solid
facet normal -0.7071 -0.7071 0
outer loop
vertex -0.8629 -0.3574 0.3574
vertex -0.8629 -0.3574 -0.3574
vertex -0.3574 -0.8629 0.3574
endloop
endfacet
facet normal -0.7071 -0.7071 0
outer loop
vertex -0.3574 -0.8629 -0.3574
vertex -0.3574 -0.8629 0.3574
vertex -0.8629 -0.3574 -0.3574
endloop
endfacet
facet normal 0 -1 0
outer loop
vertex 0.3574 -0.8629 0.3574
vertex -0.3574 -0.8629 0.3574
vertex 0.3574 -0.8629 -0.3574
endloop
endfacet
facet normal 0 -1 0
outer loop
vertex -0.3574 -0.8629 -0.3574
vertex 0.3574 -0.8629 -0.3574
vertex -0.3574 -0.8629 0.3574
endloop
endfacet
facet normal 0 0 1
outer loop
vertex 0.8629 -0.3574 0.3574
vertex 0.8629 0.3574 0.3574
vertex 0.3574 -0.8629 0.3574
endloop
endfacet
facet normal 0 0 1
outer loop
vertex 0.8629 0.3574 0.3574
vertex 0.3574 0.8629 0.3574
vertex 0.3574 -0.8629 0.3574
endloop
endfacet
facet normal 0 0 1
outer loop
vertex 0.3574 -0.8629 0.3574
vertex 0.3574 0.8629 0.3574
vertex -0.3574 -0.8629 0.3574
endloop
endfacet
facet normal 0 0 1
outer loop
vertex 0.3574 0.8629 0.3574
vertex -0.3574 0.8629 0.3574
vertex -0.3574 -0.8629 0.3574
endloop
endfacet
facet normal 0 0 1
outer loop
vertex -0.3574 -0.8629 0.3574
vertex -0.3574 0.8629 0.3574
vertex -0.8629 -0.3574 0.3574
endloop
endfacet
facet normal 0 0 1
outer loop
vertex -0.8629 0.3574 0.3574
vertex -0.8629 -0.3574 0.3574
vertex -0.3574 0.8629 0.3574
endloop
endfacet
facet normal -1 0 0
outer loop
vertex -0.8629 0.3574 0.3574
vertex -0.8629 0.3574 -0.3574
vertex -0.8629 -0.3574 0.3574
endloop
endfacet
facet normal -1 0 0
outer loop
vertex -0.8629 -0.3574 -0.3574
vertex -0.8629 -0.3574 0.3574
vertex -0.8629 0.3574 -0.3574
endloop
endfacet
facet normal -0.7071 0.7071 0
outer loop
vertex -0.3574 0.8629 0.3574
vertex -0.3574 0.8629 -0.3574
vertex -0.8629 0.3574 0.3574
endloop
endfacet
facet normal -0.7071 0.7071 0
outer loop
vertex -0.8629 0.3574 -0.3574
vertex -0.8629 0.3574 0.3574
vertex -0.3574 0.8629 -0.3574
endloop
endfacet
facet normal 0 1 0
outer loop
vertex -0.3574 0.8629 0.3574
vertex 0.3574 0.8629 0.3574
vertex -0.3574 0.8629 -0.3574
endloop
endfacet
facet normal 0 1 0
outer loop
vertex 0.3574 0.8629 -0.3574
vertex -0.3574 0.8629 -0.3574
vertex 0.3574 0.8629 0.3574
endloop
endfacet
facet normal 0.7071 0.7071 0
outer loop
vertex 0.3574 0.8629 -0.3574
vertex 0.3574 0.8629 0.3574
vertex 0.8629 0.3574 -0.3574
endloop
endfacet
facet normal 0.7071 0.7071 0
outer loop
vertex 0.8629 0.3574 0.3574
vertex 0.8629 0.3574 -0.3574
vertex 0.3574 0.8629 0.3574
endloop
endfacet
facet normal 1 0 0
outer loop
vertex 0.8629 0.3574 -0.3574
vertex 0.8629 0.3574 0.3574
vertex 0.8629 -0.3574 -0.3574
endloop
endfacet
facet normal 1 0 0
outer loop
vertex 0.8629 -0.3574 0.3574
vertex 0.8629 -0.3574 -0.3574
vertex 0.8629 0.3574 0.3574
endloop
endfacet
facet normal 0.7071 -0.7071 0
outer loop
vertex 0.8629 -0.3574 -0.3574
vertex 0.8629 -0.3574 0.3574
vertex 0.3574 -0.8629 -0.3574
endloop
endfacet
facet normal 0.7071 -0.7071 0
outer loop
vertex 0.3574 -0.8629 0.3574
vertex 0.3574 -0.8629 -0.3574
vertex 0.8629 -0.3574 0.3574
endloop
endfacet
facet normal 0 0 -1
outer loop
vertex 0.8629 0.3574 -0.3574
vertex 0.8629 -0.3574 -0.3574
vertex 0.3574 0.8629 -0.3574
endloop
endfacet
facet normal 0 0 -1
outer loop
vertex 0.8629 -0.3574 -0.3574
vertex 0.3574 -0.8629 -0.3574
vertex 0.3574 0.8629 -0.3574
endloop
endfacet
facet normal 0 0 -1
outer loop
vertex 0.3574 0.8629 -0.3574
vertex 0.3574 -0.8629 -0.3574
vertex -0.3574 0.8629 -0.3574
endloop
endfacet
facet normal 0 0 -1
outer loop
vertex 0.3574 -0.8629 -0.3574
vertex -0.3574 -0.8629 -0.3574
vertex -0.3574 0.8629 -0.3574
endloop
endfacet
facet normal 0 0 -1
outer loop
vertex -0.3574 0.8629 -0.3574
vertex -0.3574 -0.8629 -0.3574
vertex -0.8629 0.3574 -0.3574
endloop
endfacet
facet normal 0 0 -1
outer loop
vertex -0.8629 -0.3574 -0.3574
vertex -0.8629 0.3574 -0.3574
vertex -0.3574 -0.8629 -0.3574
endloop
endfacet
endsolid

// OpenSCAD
polyhedron( points = [[-0.357406744346791, -0.862856209463085, 0.357406744308882], [-0.862856209520078, -0.357406744221719, 0.357406744308882], [-0.8628562094238, 0.35740674441375, 0.357406744308882], [-0.357406744269312, 0.86285620945478, 0.357406744308882], [0.35740674436616, 0.86285620939059, 0.357406744308882], [0.862856209429878, 0.357406744258793, 0.357406744308882], [0.862856209397783, -0.357406744376676, 0.357406744308882], [0.357406744288681, -0.862856209463085, 0.357406744308882], [-0.357406744314698, -0.862856209385606, -0.35740674432659], [-0.862856209455892, -0.357406744176332, -0.357406744217018], [-0.862856209346321, 0.357406744381662, -0.35740674432659], [-0.35740674416914, 0.86285620944538, -0.357406744294497], [0.357406744334065, 0.862856209313111, -0.35740674432659], [0.862856209420478, 0.357406744158626, -0.357406744294497], [0.862856209320304, -0.357406744344583, -0.35740674432659], [0.357406744288681, -0.862856209385606, -0.357406744358685]], faces = [[0, 1, 9, 8], [0, 8, 15, 7], [0, 7, 6, 5, 4, 3, 2, 1], [1, 2, 10, 9], [2, 3, 11, 10], [3, 4, 12, 11], [4, 5, 13, 12], [5, 6, 14, 13], [6, 7, 15, 14], [8, 9, 10, 11, 12, 13, 14, 15]]);
